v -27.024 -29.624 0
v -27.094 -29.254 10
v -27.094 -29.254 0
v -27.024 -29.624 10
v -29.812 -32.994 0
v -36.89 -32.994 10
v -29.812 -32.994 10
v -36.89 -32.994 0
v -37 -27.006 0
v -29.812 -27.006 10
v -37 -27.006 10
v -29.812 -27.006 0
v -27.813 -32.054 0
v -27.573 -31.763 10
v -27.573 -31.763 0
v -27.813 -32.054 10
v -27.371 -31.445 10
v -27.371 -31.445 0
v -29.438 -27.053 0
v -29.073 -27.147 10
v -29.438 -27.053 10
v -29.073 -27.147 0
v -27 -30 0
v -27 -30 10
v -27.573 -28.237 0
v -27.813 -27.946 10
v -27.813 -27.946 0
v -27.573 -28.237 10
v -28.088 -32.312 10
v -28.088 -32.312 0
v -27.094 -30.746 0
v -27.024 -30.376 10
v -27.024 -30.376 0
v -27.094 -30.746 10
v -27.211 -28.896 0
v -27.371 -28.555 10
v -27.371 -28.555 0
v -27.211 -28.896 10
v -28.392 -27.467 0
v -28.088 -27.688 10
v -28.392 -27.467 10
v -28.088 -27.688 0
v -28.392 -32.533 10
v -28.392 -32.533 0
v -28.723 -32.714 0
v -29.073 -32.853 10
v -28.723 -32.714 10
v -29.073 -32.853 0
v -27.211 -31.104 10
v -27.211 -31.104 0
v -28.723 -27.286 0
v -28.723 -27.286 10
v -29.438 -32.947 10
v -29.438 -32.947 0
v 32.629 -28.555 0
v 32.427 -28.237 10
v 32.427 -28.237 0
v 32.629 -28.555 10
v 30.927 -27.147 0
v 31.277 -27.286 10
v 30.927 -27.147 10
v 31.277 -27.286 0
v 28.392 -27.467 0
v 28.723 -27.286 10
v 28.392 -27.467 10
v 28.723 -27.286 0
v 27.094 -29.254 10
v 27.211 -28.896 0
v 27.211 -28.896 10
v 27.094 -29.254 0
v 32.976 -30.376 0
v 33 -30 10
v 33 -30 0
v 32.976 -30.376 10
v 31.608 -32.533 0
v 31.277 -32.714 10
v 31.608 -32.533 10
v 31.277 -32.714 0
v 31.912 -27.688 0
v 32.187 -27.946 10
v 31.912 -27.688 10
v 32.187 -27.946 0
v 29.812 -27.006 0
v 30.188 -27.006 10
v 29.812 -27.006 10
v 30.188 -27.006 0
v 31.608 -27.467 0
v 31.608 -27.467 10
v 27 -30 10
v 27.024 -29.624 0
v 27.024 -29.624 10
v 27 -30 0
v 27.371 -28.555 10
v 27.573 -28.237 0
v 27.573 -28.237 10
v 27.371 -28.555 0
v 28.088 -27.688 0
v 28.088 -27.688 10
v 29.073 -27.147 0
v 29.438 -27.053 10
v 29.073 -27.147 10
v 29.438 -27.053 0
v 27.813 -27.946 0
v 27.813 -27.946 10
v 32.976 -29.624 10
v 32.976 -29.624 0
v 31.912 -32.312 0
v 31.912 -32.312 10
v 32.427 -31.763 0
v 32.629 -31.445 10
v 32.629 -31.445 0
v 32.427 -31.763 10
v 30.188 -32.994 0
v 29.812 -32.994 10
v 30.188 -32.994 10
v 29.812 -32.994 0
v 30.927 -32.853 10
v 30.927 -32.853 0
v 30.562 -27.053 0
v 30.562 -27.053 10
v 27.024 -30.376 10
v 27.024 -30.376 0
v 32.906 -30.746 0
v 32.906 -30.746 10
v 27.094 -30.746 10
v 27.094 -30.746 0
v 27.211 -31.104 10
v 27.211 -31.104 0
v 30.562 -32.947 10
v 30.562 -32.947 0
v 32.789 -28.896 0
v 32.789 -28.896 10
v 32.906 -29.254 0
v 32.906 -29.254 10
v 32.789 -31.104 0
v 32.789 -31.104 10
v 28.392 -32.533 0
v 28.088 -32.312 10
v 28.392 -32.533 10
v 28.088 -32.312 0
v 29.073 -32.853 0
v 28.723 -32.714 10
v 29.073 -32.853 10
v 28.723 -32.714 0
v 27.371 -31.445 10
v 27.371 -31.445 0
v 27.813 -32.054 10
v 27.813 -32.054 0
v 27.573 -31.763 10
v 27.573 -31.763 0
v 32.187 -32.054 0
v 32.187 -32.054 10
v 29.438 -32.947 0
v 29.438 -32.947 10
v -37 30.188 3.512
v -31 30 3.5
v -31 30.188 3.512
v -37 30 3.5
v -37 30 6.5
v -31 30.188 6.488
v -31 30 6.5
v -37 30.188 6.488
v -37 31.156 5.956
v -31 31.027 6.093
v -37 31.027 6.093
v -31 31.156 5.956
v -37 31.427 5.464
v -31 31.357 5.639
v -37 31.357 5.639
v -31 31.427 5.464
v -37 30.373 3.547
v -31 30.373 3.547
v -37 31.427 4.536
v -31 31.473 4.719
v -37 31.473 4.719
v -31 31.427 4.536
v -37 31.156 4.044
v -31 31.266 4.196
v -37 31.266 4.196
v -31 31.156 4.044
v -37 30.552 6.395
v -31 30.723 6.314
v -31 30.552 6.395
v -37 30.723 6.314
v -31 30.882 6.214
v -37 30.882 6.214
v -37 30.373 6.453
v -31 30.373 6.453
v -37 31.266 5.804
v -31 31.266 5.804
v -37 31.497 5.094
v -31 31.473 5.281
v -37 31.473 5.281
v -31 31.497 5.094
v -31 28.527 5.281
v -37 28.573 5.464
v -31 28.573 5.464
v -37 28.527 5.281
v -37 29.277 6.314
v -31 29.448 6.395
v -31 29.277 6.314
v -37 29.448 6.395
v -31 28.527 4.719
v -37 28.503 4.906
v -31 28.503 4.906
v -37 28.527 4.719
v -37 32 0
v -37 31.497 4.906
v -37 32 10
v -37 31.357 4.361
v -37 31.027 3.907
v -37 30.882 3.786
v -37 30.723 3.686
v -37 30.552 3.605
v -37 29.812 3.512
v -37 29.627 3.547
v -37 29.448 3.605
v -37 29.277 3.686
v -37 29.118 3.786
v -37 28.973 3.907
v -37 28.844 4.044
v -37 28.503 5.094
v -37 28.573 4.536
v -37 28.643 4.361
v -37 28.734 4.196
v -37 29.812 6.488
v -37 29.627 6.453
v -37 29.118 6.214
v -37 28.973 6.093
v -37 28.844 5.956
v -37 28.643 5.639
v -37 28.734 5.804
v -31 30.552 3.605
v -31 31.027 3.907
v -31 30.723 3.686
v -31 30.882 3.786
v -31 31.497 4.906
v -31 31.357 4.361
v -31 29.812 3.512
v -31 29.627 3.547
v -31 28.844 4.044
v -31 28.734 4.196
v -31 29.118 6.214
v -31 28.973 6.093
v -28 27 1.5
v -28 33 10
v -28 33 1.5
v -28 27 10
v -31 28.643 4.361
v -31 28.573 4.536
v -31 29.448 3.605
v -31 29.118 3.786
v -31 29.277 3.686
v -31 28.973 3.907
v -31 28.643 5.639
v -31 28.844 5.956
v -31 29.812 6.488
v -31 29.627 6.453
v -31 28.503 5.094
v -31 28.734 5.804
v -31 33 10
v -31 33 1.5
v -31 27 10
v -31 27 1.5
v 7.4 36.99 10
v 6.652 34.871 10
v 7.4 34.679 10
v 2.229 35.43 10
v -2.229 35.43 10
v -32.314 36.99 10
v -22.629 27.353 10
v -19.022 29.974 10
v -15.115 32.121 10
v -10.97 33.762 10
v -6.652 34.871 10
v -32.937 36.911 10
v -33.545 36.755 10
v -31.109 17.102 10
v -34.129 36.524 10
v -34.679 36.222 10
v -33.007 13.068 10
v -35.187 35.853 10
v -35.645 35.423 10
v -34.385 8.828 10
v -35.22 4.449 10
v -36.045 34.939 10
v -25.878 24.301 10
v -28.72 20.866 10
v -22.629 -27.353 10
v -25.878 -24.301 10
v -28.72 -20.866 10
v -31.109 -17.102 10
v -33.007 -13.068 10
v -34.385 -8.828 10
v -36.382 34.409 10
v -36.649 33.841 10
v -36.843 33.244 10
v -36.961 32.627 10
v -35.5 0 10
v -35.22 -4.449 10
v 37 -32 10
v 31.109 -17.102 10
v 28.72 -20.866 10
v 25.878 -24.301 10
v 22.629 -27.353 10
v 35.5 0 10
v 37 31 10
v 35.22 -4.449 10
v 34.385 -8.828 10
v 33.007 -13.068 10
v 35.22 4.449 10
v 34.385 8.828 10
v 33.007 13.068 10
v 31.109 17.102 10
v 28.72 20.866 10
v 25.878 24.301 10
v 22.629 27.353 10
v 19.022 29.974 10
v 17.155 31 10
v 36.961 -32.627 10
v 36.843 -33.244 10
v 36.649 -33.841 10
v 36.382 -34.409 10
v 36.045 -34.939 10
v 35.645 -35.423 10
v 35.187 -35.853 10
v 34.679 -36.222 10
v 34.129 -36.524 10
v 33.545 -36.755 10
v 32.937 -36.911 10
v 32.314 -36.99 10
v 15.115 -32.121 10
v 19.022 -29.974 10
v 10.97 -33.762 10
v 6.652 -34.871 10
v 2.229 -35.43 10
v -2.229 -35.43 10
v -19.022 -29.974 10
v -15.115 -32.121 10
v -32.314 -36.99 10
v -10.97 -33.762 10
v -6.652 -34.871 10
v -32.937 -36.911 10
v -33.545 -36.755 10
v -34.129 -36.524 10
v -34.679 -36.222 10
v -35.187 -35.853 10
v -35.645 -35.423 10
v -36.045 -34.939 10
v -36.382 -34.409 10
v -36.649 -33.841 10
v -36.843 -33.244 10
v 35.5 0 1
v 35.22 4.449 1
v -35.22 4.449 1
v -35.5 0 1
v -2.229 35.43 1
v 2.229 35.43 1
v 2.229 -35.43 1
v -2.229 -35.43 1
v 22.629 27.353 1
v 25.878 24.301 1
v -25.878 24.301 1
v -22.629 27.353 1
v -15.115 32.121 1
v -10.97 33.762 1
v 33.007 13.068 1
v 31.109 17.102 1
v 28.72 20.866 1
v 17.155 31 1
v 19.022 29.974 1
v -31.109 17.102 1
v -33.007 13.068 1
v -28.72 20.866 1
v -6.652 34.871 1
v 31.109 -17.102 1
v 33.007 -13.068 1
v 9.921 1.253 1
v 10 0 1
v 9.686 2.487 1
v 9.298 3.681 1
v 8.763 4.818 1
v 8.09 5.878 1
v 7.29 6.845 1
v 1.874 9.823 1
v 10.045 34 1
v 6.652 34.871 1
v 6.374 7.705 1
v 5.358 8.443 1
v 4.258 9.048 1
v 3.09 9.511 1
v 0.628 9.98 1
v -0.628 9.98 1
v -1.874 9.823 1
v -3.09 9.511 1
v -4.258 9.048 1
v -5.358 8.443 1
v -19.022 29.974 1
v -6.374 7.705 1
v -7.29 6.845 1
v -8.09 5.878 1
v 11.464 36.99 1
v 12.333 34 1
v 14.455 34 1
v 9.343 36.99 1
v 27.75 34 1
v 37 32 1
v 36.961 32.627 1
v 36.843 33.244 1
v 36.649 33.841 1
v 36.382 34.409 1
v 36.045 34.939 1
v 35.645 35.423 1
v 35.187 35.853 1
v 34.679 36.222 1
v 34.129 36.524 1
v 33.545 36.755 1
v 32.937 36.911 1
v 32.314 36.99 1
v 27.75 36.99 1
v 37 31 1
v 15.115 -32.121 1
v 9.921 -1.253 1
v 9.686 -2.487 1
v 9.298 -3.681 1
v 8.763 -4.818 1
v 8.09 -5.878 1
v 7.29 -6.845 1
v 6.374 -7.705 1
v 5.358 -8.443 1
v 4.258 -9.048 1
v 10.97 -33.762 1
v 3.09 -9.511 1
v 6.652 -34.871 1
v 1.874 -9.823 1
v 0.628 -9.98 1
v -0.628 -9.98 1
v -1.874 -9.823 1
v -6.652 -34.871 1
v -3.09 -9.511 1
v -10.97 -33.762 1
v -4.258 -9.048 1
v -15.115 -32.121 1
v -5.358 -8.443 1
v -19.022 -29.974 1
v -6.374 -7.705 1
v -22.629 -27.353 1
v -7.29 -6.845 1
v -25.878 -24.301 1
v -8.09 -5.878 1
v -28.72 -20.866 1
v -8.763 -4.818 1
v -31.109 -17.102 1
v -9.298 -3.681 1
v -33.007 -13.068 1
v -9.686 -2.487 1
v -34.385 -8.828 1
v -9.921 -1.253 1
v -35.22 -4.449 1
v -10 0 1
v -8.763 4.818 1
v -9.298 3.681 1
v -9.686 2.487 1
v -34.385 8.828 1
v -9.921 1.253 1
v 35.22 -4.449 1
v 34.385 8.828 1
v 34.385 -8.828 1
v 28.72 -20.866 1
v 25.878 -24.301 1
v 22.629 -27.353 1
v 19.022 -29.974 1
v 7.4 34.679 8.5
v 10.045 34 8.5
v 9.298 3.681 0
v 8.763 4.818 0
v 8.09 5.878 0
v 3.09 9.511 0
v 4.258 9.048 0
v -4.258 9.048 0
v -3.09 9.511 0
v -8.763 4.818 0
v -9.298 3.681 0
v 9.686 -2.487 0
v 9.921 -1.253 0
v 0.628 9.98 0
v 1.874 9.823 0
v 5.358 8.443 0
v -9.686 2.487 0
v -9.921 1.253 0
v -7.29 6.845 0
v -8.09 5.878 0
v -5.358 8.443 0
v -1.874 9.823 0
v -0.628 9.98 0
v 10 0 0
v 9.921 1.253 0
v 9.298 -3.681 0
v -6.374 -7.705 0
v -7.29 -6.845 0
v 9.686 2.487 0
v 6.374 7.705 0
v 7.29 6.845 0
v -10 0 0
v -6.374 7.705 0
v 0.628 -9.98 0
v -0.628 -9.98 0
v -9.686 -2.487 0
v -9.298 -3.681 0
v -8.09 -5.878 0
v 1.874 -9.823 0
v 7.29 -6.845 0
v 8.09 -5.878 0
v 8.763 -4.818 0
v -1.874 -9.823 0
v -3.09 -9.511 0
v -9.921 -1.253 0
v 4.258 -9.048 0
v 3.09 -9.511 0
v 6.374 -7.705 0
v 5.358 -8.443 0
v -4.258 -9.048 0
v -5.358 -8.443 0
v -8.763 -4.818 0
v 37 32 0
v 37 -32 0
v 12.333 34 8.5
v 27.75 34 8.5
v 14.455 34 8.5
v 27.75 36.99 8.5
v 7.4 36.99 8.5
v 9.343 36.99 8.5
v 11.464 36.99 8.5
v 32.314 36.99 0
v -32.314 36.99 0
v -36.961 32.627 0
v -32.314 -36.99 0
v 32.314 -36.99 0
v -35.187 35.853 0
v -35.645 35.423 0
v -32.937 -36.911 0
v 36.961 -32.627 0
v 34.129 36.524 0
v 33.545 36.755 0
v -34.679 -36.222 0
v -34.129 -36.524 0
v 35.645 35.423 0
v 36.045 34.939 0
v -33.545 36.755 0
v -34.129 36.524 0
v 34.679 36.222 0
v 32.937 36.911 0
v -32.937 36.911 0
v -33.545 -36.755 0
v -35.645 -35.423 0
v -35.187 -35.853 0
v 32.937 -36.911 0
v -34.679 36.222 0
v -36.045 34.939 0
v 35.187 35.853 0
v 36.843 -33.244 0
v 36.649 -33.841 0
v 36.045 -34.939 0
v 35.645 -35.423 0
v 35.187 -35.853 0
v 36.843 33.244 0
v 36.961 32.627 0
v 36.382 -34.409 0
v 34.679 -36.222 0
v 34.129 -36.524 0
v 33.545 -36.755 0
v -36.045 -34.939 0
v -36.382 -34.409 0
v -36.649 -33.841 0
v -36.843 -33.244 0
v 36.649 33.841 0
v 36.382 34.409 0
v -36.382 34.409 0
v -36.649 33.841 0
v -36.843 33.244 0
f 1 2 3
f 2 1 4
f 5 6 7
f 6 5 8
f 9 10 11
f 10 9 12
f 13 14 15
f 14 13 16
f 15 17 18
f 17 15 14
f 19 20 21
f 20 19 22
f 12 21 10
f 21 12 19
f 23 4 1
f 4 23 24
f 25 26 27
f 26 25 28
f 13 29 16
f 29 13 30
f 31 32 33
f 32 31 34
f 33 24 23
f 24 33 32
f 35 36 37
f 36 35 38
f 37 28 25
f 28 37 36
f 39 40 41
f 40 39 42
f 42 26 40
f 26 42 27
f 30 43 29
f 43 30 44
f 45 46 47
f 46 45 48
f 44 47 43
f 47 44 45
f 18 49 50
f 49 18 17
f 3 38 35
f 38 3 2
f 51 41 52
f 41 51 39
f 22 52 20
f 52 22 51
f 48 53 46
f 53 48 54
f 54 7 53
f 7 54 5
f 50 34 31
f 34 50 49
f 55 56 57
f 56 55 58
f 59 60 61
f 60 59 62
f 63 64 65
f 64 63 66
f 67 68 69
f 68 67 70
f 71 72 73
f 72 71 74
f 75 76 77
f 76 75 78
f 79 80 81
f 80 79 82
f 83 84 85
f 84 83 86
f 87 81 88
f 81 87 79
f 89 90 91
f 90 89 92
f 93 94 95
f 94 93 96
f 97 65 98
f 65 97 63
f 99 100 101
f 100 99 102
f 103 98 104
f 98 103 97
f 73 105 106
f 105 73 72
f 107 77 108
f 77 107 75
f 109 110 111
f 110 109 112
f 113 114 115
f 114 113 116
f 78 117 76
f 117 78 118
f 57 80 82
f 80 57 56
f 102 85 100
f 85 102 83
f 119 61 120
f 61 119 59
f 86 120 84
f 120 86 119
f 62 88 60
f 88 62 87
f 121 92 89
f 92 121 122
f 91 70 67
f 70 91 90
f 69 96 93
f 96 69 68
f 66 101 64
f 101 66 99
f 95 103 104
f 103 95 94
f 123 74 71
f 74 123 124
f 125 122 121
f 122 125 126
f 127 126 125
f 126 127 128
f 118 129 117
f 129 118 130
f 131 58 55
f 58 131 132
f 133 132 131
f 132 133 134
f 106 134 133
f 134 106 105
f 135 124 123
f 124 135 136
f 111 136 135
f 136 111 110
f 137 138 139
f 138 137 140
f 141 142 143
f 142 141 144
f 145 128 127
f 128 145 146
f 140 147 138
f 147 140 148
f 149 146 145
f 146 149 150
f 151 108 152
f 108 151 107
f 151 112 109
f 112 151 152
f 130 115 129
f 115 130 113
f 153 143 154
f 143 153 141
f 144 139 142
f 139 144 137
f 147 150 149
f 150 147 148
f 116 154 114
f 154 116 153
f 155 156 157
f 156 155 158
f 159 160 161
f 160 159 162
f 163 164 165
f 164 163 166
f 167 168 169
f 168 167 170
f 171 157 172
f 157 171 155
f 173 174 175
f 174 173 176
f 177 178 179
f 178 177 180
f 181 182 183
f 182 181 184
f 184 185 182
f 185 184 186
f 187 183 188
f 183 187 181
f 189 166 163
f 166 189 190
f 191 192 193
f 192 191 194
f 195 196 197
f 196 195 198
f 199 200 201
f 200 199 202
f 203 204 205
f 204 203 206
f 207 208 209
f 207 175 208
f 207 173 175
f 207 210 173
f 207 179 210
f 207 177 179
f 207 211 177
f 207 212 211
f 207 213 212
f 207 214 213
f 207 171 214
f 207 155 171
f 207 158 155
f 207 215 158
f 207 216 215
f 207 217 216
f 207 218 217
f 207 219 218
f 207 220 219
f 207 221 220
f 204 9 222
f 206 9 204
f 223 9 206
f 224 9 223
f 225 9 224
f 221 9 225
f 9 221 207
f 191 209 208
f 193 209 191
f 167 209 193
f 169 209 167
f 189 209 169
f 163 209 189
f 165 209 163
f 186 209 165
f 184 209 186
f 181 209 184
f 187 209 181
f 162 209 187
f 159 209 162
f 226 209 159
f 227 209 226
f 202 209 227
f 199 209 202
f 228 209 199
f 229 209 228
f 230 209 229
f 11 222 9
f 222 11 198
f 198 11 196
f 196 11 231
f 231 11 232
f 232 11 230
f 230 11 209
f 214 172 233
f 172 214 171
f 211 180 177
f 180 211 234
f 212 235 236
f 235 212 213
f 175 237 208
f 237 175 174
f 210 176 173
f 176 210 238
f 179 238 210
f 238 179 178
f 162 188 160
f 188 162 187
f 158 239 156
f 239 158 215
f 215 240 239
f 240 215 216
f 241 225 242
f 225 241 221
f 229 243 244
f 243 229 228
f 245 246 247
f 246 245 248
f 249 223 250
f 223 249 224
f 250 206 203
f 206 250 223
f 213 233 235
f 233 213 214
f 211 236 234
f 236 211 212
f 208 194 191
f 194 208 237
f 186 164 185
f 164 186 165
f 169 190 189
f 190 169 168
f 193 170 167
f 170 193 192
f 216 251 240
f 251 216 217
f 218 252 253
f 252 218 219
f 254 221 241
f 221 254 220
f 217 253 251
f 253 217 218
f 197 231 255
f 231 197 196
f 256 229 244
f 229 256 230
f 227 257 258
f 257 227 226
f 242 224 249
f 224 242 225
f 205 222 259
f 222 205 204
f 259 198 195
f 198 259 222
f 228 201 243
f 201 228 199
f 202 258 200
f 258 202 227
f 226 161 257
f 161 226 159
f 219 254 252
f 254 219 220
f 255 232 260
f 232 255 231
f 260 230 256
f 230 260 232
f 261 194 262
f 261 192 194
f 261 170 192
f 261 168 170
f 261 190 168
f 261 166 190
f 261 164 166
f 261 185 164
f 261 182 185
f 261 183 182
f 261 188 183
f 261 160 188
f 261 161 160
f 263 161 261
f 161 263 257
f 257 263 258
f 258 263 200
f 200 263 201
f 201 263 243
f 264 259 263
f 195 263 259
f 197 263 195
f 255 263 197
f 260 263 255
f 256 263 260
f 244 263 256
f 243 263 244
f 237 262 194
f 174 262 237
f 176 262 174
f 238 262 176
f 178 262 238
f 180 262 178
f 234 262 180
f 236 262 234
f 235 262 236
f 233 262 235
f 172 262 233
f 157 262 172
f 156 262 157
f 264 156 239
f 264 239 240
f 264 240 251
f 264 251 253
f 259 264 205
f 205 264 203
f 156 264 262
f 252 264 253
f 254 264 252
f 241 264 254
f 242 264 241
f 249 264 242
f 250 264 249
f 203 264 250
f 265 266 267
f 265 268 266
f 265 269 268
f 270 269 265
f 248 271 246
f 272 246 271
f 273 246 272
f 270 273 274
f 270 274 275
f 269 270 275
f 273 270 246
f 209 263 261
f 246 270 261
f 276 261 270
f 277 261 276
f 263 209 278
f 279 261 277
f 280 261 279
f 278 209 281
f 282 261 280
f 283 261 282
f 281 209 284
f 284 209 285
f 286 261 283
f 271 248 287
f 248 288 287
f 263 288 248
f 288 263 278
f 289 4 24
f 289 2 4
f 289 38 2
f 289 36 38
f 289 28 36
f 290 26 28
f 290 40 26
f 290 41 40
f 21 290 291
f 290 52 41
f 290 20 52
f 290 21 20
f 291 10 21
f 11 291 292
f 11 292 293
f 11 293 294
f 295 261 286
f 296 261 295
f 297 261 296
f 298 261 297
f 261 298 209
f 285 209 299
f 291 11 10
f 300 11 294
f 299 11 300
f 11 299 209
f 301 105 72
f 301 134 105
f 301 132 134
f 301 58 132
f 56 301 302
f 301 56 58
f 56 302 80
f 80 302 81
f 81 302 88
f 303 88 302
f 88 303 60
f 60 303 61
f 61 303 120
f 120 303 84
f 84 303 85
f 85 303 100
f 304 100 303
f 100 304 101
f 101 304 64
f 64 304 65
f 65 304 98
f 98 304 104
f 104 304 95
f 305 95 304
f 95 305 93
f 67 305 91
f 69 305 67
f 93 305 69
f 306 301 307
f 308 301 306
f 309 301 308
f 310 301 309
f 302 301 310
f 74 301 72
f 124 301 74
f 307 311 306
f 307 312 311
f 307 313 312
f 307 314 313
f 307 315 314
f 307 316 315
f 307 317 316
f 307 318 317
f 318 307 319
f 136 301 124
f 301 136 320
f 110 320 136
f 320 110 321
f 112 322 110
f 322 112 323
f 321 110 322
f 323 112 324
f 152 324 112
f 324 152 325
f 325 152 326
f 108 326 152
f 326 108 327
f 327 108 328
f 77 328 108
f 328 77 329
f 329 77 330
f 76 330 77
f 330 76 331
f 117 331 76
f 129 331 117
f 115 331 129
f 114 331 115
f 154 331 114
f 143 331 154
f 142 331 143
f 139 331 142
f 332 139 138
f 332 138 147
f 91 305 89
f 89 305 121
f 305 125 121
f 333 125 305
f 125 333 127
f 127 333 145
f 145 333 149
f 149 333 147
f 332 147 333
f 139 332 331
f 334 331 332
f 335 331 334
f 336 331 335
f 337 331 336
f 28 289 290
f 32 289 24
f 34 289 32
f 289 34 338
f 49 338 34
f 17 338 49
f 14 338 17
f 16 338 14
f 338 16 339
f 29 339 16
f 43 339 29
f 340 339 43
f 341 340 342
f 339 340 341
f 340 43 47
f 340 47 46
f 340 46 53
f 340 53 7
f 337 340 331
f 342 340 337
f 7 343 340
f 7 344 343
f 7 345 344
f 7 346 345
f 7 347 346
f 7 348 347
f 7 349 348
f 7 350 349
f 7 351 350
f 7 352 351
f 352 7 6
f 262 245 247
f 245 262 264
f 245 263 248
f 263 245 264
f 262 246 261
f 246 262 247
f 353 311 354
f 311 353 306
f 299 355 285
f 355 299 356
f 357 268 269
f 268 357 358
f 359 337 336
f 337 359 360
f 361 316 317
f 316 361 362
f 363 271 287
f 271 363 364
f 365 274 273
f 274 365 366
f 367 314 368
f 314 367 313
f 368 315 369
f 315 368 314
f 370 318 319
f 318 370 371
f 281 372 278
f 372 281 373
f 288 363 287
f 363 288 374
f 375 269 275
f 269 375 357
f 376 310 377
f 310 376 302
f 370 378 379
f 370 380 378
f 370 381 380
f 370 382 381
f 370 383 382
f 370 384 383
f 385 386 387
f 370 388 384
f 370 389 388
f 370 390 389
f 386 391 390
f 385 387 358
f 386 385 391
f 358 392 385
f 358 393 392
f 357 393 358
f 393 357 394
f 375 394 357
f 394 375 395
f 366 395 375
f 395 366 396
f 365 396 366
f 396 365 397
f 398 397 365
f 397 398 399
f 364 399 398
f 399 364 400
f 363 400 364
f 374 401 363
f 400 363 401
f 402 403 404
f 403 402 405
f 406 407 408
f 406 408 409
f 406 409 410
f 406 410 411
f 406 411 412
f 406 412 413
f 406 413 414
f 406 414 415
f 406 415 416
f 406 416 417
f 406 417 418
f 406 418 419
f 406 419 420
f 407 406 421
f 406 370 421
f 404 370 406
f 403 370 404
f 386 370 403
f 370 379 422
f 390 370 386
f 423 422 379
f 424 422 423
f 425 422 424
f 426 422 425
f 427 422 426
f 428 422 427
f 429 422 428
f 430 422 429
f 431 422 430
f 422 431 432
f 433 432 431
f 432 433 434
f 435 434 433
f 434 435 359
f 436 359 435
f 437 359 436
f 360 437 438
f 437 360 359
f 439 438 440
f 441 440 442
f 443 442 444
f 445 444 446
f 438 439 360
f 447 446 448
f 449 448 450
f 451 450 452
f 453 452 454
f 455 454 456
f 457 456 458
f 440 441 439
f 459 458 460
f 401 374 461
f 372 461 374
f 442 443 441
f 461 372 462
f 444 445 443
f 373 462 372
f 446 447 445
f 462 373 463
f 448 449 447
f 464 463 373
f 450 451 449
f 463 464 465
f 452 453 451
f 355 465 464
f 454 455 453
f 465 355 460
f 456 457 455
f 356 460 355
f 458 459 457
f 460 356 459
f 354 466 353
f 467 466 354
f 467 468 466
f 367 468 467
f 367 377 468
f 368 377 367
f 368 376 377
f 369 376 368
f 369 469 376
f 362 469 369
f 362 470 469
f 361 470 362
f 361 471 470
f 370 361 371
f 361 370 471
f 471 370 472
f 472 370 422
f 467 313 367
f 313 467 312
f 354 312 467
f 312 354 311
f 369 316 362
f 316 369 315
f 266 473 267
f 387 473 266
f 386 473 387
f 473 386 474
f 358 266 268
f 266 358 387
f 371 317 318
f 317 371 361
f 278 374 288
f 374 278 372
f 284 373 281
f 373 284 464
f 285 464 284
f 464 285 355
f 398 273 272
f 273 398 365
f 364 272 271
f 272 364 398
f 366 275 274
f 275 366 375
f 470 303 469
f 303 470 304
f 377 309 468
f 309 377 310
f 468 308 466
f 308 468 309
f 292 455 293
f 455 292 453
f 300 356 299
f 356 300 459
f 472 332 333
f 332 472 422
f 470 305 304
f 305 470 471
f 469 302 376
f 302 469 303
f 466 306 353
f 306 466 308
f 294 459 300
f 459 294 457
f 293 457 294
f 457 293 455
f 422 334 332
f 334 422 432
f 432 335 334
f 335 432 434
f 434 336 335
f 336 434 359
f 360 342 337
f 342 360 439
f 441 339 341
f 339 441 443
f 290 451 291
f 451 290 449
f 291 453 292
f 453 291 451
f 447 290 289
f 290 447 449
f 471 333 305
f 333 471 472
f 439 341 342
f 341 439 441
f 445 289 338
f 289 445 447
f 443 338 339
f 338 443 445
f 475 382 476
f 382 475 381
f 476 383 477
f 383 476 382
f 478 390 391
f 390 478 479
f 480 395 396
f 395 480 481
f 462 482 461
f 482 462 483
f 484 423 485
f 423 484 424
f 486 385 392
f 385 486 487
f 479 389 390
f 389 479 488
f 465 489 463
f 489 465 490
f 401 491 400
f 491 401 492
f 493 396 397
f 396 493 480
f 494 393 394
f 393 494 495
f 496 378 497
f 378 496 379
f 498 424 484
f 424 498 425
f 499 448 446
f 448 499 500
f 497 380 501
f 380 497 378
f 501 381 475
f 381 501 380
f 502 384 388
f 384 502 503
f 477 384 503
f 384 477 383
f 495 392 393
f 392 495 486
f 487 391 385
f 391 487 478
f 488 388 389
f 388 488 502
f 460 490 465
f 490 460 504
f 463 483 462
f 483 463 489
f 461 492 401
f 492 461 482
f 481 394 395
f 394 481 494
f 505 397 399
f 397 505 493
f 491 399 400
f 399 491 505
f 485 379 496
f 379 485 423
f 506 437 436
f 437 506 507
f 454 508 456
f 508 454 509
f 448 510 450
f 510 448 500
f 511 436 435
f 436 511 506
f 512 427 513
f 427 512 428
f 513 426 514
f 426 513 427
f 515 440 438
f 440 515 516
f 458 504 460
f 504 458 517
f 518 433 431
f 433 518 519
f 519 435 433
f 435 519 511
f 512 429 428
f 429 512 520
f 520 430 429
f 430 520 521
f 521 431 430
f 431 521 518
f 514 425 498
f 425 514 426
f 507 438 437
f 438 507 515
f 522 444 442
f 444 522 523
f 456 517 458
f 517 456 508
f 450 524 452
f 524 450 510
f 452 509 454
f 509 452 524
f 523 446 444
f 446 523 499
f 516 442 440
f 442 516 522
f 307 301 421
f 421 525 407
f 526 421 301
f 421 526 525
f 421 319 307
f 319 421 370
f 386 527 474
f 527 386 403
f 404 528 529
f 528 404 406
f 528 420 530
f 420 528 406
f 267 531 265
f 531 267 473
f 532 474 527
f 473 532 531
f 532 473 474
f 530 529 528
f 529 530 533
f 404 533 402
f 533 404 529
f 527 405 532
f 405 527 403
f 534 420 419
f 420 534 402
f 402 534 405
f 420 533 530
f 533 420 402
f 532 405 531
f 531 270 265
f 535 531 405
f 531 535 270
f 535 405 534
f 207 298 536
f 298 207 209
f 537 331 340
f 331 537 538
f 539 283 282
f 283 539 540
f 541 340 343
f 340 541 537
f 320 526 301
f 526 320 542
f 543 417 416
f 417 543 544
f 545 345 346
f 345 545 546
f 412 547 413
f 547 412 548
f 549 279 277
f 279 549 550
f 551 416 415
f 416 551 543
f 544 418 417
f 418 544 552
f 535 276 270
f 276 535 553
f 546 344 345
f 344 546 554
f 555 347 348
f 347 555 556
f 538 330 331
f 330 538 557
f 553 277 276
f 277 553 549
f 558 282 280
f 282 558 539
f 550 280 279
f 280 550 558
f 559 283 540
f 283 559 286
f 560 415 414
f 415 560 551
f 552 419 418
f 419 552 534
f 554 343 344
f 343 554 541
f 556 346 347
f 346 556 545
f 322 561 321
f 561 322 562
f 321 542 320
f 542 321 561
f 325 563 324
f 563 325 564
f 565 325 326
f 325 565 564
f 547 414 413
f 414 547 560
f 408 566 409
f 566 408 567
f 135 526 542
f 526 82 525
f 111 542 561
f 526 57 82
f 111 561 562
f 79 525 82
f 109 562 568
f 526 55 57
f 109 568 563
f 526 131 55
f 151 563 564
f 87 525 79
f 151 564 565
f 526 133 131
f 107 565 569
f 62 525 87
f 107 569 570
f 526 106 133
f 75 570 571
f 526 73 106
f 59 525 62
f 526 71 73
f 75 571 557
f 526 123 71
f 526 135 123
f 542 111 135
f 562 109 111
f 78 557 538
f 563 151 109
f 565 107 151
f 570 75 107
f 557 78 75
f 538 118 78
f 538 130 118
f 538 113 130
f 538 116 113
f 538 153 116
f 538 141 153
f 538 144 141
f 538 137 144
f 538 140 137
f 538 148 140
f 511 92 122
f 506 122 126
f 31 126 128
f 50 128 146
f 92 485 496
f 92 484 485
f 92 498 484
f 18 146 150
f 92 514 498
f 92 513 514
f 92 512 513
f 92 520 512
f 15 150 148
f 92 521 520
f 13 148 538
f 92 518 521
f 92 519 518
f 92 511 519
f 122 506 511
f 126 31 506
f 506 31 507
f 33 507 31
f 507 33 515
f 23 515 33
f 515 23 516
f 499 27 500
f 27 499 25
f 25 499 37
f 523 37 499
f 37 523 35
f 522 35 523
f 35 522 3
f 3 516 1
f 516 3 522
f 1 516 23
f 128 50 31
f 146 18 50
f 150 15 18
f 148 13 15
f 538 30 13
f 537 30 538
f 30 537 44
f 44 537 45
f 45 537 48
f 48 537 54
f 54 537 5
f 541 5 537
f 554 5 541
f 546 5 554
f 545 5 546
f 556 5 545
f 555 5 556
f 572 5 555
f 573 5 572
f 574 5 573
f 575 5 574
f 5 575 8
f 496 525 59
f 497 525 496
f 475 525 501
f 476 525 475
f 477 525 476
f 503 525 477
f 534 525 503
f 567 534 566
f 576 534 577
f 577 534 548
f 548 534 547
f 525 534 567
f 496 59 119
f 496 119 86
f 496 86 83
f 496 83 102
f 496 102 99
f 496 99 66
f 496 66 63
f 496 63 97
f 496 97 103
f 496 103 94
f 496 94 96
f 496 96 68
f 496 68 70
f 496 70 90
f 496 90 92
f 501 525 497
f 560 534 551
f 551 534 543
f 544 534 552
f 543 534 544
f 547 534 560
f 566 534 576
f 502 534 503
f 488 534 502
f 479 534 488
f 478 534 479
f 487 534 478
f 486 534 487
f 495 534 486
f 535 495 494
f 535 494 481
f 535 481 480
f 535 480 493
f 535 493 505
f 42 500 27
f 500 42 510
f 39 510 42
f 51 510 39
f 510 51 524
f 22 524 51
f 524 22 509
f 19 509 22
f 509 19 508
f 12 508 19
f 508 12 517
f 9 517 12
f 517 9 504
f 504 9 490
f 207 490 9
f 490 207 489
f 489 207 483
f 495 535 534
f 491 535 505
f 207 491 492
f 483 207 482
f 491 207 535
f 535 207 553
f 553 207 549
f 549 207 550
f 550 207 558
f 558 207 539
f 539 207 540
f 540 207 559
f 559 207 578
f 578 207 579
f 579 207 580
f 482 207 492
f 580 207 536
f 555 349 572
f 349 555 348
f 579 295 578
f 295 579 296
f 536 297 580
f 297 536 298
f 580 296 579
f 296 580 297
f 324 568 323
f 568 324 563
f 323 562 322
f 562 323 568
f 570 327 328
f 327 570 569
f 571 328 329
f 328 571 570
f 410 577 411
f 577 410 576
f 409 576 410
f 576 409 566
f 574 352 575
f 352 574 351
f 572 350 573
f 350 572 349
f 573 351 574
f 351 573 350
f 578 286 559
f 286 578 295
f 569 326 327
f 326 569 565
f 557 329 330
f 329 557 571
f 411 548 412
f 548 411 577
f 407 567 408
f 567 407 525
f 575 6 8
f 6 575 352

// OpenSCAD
$fn = 50;


difference() {
	union() {
		translate(v = [0, 0, 0]) {
			rotate(a = [0, 0, 0]) {
				hull() {
					translate(v = [-32.0000000000, 32.0000000000, 0]) {
						rotate(a = [0, 0, 0]) {
							translate(v = [0, 0, 0]) {
								rotate(a = [0, 0, 0]) {
									cylinder(h = 10, r = 5);
								}
							}
						}
					}
					translate(v = [32.0000000000, 32.0000000000, 0]) {
						rotate(a = [0, 0, 0]) {
							translate(v = [0, 0, 0]) {
								rotate(a = [0, 0, 0]) {
									cylinder(h = 10, r = 5);
								}
							}
						}
					}
					translate(v = [-32.0000000000, -32.0000000000, 0]) {
						rotate(a = [0, 0, 0]) {
							translate(v = [0, 0, 0]) {
								rotate(a = [0, 0, 0]) {
									cylinder(h = 10, r = 5);
								}
							}
						}
					}
					translate(v = [32.0000000000, -32.0000000000, 0]) {
						rotate(a = [0, 0, 0]) {
							translate(v = [0, 0, 0]) {
								rotate(a = [0, 0, 0]) {
									cylinder(h = 10, r = 5);
								}
							}
						}
					}
				}
			}
		}
	}
	union() {
		translate(v = [-37.5000000000, -30.0000000000, -125]) {
			rotate(a = [0, 0, 0]) {
				hull() {
					translate(v = [7.5000000000, 0, 0]) {
						rotate(a = [0, 0, 0]) {
							translate(v = [0, 0, 0]) {
								rotate(a = [0, 0, 0]) {
									cylinder(h = 250, r = 3.0000000000);
								}
							}
						}
					}
					translate(v = [-7.5000000000, 0, 0]) {
						rotate(a = [0, 0, 0]) {
							translate(v = [0, 0, 0]) {
								rotate(a = [0, 0, 0]) {
									cylinder(h = 250, r = 3.0000000000);
								}
							}
						}
					}
				}
			}
		}
		translate(v = [30.0000000000, -30.0000000000, -125.0000000000]) {
			rotate(a = [0, 0, 0]) {
				cylinder(h = 250, r = 3.0000000000);
			}
		}
		translate(v = [-37.0000000000, 30.0000000000, 5.0000000000]) {
			rotate(a = [0, 90, 0]) {
				cylinder(h = 9, r = 1.5000000000);
			}
		}
		translate(v = [-31.0000000000, 27.0000000000, 1.5000000000]) {
			rotate(a = [0, 0, 0]) {
				cube(size = [3, 6, 8.5000000000]);
			}
		}
		translate(v = [0, 0, 1.0000000000]) {
			rotate(a = [0, 0, 0]) {
				cylinder(h = 12, r = 35.5000000000);
			}
		}
		translate(v = [0, 0, -5.0000000000]) {
			rotate(a = [0, 0, 0]) {
				cylinder(h = 10, r = 10.0000000000);
			}
		}
		translate(v = [0.0000000000, 31.0000000000, 1]) {
			rotate(a = [0, 0, 0]) {
				cube(size = [37.0000000000, 3, 12]);
			}
		}
		translate(v = [27.7500000000, 31.0000000000, 1]) {
			rotate(a = [0, 0, 0]) {
				cube(size = [9.2500000000, 6, 12]);
			}
		}
		translate(v = [7.4000000000, 31.0000000000, 8.5000000000]) {
			rotate(a = [0, 0, 0]) {
				cube(size = [29.6000000000, 6, 1.5000000000]);
			}
		}
		translate(v = [8.5833333333, 37.7500000000, 1]) {
			rotate(a = [0, 0, -45]) {
				cube(size = [7.5000000000, 1.5000000000, 12]);
			}
		}
	}
}
